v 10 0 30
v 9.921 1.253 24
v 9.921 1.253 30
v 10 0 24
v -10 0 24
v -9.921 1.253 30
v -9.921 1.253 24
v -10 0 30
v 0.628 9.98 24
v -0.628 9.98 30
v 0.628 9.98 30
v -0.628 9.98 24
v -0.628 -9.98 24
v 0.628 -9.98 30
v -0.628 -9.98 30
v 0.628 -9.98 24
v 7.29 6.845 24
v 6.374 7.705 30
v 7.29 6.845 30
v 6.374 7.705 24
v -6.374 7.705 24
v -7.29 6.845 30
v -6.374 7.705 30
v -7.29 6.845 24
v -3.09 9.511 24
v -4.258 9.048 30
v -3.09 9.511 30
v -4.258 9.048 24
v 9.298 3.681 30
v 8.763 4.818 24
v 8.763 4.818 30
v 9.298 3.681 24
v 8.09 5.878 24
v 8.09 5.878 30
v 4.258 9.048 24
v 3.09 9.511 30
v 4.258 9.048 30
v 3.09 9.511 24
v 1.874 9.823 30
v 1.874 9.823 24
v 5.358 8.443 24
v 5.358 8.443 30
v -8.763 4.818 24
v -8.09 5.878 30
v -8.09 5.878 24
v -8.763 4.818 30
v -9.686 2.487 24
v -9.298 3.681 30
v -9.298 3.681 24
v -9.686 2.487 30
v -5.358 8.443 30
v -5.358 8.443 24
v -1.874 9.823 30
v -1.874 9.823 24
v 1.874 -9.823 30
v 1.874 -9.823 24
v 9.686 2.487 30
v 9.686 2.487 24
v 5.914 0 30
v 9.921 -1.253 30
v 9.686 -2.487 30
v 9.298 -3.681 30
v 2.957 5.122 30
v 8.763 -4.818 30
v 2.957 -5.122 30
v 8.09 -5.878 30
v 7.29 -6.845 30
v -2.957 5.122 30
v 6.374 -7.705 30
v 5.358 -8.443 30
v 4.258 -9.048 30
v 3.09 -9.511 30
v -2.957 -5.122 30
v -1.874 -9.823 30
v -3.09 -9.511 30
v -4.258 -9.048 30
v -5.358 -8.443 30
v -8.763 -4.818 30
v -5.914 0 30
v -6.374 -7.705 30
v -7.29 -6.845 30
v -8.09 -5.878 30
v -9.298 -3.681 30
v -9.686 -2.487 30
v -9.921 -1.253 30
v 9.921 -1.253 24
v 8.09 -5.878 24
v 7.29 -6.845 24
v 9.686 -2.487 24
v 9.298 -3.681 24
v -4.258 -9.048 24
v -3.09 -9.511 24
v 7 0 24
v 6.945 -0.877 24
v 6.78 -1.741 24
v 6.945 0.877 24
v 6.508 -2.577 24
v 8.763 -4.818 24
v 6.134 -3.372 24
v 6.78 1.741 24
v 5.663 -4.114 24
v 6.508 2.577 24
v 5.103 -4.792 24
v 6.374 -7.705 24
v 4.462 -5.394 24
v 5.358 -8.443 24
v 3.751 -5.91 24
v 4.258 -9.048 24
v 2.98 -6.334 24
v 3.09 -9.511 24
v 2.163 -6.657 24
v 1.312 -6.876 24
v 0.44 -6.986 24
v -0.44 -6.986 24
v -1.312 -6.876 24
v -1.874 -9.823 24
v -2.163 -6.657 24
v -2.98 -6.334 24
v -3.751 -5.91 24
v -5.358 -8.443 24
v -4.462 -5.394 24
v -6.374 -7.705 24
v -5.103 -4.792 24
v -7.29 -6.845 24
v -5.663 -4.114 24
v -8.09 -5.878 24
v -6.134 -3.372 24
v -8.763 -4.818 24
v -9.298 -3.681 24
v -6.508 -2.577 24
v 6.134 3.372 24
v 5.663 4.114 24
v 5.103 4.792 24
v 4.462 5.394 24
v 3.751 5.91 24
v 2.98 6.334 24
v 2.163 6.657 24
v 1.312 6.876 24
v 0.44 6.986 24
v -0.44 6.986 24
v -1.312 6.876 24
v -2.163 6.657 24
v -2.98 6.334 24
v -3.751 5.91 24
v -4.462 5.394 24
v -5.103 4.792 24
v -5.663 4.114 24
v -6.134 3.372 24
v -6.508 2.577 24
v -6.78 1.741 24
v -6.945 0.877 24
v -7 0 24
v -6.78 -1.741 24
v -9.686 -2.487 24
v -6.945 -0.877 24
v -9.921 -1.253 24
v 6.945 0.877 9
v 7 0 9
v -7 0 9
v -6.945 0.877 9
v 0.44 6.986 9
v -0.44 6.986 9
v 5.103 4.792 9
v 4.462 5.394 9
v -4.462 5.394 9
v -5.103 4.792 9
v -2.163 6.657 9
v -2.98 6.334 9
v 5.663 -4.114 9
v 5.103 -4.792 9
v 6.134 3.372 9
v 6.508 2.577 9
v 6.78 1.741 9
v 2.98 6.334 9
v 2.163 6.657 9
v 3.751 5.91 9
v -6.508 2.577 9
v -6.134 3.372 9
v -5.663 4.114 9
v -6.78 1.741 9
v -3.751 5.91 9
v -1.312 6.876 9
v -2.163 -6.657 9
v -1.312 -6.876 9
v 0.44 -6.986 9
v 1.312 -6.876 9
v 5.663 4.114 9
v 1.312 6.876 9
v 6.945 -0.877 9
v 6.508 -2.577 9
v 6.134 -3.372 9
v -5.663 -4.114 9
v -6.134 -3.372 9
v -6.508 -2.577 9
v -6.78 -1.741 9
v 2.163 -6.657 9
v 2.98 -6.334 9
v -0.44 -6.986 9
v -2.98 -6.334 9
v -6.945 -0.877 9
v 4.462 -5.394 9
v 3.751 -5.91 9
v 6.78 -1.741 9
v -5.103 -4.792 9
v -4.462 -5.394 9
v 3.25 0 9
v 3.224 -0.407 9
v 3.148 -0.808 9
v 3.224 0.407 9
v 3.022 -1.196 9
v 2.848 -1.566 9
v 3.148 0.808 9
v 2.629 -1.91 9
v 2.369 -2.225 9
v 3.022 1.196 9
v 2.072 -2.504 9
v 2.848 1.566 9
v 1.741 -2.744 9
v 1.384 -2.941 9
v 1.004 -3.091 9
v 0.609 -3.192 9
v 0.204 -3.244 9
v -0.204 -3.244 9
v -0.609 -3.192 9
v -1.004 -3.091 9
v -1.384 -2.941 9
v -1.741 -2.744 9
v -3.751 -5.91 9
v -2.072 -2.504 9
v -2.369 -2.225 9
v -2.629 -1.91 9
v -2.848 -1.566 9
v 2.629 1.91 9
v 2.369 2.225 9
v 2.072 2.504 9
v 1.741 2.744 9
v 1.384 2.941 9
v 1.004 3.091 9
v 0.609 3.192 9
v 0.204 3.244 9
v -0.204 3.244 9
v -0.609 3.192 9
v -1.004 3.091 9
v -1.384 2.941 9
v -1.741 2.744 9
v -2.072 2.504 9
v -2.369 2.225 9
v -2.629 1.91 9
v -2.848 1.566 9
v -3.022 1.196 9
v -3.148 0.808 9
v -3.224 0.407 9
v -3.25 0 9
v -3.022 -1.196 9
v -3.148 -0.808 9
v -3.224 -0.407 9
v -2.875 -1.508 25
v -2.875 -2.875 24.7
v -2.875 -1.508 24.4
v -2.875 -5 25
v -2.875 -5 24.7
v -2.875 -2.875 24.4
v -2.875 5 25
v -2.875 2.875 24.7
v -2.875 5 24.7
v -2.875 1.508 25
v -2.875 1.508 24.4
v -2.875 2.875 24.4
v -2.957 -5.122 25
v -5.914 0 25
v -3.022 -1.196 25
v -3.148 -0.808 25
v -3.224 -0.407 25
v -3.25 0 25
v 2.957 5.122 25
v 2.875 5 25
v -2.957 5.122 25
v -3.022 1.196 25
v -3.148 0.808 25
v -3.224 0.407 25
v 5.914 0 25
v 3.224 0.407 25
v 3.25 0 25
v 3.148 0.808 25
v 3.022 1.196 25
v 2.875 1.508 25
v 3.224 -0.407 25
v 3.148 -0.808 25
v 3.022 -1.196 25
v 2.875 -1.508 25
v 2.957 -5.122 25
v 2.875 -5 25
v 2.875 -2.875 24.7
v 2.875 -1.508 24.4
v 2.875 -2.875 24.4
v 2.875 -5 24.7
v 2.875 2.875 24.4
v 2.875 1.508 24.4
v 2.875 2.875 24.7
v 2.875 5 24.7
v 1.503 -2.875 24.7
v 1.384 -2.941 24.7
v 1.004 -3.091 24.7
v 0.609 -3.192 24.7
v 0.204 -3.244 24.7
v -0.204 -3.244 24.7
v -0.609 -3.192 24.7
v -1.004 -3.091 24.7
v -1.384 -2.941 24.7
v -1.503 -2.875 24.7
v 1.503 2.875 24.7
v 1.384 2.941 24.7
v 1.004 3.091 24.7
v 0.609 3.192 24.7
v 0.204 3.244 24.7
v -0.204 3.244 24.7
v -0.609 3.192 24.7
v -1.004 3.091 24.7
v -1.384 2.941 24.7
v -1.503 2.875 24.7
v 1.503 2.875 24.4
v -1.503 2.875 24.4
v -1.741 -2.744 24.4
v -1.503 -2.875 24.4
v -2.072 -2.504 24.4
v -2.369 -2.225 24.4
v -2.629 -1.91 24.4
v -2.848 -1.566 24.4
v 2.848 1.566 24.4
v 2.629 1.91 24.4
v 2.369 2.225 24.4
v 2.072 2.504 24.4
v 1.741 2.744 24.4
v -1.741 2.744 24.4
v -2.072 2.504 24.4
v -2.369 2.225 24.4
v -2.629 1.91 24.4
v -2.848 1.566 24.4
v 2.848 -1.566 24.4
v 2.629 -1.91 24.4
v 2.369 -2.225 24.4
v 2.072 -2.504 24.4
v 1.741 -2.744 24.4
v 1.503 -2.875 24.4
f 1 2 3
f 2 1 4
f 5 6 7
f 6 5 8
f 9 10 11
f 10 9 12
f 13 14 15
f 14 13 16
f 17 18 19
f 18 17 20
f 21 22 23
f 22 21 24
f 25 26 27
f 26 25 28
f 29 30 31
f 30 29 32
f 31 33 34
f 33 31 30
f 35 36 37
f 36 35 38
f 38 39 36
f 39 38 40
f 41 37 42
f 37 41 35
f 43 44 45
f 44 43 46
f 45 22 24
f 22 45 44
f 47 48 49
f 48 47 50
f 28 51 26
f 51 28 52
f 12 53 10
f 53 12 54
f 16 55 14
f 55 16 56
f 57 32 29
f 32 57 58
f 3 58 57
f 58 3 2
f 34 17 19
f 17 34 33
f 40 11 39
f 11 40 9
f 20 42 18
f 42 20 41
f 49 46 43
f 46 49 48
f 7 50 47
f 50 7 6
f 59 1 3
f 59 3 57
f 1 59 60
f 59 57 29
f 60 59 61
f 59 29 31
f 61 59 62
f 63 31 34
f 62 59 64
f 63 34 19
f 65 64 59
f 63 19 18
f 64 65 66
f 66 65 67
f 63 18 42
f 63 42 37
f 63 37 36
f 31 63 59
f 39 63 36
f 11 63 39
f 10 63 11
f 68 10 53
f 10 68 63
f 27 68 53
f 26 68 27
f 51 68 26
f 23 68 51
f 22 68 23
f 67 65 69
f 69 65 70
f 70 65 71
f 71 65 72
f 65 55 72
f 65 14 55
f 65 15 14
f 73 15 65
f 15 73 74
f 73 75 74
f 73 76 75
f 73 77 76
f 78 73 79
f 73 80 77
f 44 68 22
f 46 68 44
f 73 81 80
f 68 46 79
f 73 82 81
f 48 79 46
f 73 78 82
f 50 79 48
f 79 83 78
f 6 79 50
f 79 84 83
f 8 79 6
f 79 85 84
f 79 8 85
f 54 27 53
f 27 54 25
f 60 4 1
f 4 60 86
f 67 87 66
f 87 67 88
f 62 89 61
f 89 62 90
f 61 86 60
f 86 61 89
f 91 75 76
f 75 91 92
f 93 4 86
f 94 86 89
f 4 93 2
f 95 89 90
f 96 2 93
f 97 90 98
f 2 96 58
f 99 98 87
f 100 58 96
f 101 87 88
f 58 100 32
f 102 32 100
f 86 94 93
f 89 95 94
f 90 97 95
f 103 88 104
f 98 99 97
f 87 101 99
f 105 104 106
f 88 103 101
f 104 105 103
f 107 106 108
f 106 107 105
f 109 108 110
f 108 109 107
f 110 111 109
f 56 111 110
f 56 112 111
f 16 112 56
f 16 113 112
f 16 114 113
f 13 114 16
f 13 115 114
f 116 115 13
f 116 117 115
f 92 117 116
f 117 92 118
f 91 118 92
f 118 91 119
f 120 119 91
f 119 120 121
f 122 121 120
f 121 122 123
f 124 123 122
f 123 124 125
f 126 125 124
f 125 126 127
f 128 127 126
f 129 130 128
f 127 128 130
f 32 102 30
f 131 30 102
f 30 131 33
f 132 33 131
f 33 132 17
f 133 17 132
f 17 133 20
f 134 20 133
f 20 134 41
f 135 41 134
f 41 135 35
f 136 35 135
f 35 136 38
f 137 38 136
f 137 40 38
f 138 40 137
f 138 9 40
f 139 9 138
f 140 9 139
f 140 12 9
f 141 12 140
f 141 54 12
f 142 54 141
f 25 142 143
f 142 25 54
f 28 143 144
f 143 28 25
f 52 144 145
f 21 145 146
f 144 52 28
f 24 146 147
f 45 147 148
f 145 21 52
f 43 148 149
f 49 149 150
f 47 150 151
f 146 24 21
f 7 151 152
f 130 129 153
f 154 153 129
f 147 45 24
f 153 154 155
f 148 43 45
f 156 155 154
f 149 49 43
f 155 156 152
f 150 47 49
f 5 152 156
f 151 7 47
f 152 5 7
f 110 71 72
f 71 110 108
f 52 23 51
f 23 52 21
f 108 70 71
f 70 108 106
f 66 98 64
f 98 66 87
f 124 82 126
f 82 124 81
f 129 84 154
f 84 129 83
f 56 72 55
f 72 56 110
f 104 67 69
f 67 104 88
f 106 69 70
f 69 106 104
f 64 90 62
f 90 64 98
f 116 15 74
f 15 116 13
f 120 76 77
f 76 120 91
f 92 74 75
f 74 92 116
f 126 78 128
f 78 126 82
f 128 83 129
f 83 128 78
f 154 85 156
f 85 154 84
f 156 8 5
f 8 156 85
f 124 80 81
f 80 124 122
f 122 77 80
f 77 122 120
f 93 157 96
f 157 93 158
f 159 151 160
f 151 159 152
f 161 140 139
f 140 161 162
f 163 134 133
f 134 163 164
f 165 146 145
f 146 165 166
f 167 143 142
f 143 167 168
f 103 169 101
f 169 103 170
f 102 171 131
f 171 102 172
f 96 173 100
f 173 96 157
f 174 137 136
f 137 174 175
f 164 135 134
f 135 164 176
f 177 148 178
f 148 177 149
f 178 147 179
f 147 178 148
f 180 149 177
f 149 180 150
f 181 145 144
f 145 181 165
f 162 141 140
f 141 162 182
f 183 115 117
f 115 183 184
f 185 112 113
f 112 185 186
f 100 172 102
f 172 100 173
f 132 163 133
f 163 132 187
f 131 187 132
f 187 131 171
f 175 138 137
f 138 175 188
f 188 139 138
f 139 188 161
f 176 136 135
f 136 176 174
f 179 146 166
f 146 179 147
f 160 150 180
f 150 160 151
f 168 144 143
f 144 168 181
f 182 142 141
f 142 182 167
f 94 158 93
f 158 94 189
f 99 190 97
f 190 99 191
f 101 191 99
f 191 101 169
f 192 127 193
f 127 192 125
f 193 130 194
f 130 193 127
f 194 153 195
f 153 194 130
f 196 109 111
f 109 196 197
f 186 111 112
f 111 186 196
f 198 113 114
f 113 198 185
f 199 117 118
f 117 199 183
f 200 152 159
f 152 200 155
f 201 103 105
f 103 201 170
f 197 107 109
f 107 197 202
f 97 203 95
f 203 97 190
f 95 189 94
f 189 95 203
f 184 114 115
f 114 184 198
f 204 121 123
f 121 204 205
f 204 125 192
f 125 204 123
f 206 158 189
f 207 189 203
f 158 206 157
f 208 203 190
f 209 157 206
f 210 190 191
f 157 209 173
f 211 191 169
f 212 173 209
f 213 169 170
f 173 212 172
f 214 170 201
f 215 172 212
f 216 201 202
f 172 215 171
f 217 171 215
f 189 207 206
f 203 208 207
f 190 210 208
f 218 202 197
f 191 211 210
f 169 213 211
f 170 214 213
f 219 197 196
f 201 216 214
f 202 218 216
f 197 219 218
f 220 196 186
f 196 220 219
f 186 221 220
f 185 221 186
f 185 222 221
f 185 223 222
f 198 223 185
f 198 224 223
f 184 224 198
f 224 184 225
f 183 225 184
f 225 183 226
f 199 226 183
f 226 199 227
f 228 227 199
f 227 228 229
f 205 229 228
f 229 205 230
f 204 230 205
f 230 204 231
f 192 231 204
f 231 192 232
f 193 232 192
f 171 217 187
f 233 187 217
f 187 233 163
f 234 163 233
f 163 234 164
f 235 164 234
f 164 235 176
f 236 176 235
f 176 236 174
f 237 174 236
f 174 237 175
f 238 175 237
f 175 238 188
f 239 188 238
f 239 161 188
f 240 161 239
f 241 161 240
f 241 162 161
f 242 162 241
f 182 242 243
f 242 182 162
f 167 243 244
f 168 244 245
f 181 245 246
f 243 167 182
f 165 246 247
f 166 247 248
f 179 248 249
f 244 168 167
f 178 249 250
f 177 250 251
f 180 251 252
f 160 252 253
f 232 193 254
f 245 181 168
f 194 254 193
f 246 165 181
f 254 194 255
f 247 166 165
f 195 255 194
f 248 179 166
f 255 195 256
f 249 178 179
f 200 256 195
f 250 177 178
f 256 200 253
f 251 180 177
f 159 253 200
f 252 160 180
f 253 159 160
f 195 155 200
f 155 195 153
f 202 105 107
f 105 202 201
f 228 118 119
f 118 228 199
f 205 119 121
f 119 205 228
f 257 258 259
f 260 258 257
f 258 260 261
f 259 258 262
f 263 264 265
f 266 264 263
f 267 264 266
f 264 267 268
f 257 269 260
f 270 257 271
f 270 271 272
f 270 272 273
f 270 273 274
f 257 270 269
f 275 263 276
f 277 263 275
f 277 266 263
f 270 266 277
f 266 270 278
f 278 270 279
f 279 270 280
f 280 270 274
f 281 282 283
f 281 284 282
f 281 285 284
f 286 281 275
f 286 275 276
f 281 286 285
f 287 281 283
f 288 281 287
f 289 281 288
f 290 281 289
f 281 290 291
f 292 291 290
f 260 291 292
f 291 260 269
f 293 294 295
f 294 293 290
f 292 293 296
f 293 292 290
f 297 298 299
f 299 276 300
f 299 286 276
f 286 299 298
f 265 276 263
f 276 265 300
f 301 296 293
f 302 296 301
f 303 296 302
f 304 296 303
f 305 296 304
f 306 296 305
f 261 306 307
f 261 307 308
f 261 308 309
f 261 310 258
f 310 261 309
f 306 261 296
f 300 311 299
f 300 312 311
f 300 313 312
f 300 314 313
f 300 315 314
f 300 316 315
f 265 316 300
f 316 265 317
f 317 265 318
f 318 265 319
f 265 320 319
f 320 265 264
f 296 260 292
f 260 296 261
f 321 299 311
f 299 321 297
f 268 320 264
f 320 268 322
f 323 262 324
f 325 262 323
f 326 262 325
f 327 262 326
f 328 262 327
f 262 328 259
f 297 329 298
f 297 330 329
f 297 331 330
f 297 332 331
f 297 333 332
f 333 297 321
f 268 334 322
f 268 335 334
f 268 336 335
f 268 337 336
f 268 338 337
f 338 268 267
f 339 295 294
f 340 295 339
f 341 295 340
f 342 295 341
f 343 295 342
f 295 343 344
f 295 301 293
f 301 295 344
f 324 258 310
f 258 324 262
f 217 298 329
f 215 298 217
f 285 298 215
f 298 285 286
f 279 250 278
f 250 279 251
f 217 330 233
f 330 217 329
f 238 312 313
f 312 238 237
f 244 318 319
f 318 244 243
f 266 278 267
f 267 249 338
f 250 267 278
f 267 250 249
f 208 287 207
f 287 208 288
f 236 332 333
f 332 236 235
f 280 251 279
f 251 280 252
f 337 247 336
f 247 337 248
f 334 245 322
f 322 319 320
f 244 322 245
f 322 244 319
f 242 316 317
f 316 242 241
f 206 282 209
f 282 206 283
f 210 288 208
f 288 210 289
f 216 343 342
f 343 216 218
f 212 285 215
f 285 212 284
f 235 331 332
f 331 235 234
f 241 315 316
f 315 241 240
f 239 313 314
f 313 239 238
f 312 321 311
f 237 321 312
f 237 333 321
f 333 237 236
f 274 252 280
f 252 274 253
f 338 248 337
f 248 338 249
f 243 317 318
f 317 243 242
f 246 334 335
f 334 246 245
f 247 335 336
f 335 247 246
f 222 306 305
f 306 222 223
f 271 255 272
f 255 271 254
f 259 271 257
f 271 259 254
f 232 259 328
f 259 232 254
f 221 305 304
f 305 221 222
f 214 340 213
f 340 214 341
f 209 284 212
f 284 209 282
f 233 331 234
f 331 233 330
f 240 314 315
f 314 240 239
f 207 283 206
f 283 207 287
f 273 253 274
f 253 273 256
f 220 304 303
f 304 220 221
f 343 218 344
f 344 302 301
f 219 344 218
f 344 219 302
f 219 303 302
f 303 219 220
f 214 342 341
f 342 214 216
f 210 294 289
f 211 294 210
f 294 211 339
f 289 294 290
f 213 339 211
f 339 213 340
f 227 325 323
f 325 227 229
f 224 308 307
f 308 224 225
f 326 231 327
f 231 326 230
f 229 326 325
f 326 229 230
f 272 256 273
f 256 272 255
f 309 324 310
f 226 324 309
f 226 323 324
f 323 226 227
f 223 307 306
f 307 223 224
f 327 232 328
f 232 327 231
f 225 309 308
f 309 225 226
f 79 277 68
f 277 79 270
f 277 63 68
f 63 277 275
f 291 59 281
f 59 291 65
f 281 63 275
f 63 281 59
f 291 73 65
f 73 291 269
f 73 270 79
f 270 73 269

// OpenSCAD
$fn = 50;


difference() {
	union() {
		translate(v = [0, 0, 24.0000000000]) {
			cylinder(h = 6, r = 10.0000000000);
		}
		translate(v = [0, 0, 9.0000000000]) {
			cylinder(h = 21, r = 7.0000000000);
		}
	}
	union() {
		translate(v = [0, 0, 30]) {
			rotate(a = [0, 0, 0]) {
				difference() {
					union() {
						#translate(v = [-2.8750000000, -5.0000000000, -5.3000000000]) {
							cube(size = [5.7500000000, 10, 0.3000000000]);
						}
						#translate(v = [-2.8750000000, -2.8750000000, -5.6000000000]) {
							cube(size = [5.7500000000, 5.7500000000, 0.3000000000]);
						}
						#translate(v = [-2.8750000000, -5.0000000000, 0]) {
							cube(size = [5.7500000000, 10, 0.3000000000]);
						}
						#translate(v = [-2.8750000000, -2.8750000000, 0.3000000000]) {
							cube(size = [5.7500000000, 5.7500000000, 0.3000000000]);
						}
						#translate(v = [0, 0, -100.0000000000]) {
							cylinder(h = 200, r = 3.2500000000);
						}
						translate(v = [0, 0, -5]) {
							#linear_extrude(height = 5) {
								polygon(points = [[5.9142500000, 0.0000000000], [2.9571250000, 5.1218907443], [-2.9571250000, 5.1218907443], [-5.9142500000, 0.0000000000], [-2.9571250000, -5.1218907443], [2.9571250000, -5.1218907443]]);
							}
						}
						#translate(v = [-2.8750000000, -5.0000000000, -5.3000000000]) {
							cube(size = [5.7500000000, 10, 0.3000000000]);
						}
						#translate(v = [-2.8750000000, -2.8750000000, -5.6000000000]) {
							cube(size = [5.7500000000, 5.7500000000, 0.3000000000]);
						}
						#translate(v = [-2.8750000000, -5.0000000000, 0]) {
							cube(size = [5.7500000000, 10, 0.3000000000]);
						}
						#translate(v = [-2.8750000000, -2.8750000000, 0.3000000000]) {
							cube(size = [5.7500000000, 5.7500000000, 0.3000000000]);
						}
						#translate(v = [0, 0, -100.0000000000]) {
							cylinder(h = 200, r = 3.2500000000);
						}
						#translate(v = [-2.8750000000, -5.0000000000, -5.3000000000]) {
							cube(size = [5.7500000000, 10, 0.3000000000]);
						}
						#translate(v = [-2.8750000000, -2.8750000000, -5.6000000000]) {
							cube(size = [5.7500000000, 5.7500000000, 0.3000000000]);
						}
						#translate(v = [-2.8750000000, -5.0000000000, 0]) {
							cube(size = [5.7500000000, 10, 0.3000000000]);
						}
						#translate(v = [-2.8750000000, -2.8750000000, 0.3000000000]) {
							cube(size = [5.7500000000, 5.7500000000, 0.3000000000]);
						}
						#translate(v = [0, 0, -100.0000000000]) {
							cylinder(h = 200, r = 3.2500000000);
						}
					}
					union();
				}
			}
		}
		#translate(v = [0, 0, -100.0000000000]) {
			cylinder(h = 200, r = 3.2500000000);
		}
	}
}
